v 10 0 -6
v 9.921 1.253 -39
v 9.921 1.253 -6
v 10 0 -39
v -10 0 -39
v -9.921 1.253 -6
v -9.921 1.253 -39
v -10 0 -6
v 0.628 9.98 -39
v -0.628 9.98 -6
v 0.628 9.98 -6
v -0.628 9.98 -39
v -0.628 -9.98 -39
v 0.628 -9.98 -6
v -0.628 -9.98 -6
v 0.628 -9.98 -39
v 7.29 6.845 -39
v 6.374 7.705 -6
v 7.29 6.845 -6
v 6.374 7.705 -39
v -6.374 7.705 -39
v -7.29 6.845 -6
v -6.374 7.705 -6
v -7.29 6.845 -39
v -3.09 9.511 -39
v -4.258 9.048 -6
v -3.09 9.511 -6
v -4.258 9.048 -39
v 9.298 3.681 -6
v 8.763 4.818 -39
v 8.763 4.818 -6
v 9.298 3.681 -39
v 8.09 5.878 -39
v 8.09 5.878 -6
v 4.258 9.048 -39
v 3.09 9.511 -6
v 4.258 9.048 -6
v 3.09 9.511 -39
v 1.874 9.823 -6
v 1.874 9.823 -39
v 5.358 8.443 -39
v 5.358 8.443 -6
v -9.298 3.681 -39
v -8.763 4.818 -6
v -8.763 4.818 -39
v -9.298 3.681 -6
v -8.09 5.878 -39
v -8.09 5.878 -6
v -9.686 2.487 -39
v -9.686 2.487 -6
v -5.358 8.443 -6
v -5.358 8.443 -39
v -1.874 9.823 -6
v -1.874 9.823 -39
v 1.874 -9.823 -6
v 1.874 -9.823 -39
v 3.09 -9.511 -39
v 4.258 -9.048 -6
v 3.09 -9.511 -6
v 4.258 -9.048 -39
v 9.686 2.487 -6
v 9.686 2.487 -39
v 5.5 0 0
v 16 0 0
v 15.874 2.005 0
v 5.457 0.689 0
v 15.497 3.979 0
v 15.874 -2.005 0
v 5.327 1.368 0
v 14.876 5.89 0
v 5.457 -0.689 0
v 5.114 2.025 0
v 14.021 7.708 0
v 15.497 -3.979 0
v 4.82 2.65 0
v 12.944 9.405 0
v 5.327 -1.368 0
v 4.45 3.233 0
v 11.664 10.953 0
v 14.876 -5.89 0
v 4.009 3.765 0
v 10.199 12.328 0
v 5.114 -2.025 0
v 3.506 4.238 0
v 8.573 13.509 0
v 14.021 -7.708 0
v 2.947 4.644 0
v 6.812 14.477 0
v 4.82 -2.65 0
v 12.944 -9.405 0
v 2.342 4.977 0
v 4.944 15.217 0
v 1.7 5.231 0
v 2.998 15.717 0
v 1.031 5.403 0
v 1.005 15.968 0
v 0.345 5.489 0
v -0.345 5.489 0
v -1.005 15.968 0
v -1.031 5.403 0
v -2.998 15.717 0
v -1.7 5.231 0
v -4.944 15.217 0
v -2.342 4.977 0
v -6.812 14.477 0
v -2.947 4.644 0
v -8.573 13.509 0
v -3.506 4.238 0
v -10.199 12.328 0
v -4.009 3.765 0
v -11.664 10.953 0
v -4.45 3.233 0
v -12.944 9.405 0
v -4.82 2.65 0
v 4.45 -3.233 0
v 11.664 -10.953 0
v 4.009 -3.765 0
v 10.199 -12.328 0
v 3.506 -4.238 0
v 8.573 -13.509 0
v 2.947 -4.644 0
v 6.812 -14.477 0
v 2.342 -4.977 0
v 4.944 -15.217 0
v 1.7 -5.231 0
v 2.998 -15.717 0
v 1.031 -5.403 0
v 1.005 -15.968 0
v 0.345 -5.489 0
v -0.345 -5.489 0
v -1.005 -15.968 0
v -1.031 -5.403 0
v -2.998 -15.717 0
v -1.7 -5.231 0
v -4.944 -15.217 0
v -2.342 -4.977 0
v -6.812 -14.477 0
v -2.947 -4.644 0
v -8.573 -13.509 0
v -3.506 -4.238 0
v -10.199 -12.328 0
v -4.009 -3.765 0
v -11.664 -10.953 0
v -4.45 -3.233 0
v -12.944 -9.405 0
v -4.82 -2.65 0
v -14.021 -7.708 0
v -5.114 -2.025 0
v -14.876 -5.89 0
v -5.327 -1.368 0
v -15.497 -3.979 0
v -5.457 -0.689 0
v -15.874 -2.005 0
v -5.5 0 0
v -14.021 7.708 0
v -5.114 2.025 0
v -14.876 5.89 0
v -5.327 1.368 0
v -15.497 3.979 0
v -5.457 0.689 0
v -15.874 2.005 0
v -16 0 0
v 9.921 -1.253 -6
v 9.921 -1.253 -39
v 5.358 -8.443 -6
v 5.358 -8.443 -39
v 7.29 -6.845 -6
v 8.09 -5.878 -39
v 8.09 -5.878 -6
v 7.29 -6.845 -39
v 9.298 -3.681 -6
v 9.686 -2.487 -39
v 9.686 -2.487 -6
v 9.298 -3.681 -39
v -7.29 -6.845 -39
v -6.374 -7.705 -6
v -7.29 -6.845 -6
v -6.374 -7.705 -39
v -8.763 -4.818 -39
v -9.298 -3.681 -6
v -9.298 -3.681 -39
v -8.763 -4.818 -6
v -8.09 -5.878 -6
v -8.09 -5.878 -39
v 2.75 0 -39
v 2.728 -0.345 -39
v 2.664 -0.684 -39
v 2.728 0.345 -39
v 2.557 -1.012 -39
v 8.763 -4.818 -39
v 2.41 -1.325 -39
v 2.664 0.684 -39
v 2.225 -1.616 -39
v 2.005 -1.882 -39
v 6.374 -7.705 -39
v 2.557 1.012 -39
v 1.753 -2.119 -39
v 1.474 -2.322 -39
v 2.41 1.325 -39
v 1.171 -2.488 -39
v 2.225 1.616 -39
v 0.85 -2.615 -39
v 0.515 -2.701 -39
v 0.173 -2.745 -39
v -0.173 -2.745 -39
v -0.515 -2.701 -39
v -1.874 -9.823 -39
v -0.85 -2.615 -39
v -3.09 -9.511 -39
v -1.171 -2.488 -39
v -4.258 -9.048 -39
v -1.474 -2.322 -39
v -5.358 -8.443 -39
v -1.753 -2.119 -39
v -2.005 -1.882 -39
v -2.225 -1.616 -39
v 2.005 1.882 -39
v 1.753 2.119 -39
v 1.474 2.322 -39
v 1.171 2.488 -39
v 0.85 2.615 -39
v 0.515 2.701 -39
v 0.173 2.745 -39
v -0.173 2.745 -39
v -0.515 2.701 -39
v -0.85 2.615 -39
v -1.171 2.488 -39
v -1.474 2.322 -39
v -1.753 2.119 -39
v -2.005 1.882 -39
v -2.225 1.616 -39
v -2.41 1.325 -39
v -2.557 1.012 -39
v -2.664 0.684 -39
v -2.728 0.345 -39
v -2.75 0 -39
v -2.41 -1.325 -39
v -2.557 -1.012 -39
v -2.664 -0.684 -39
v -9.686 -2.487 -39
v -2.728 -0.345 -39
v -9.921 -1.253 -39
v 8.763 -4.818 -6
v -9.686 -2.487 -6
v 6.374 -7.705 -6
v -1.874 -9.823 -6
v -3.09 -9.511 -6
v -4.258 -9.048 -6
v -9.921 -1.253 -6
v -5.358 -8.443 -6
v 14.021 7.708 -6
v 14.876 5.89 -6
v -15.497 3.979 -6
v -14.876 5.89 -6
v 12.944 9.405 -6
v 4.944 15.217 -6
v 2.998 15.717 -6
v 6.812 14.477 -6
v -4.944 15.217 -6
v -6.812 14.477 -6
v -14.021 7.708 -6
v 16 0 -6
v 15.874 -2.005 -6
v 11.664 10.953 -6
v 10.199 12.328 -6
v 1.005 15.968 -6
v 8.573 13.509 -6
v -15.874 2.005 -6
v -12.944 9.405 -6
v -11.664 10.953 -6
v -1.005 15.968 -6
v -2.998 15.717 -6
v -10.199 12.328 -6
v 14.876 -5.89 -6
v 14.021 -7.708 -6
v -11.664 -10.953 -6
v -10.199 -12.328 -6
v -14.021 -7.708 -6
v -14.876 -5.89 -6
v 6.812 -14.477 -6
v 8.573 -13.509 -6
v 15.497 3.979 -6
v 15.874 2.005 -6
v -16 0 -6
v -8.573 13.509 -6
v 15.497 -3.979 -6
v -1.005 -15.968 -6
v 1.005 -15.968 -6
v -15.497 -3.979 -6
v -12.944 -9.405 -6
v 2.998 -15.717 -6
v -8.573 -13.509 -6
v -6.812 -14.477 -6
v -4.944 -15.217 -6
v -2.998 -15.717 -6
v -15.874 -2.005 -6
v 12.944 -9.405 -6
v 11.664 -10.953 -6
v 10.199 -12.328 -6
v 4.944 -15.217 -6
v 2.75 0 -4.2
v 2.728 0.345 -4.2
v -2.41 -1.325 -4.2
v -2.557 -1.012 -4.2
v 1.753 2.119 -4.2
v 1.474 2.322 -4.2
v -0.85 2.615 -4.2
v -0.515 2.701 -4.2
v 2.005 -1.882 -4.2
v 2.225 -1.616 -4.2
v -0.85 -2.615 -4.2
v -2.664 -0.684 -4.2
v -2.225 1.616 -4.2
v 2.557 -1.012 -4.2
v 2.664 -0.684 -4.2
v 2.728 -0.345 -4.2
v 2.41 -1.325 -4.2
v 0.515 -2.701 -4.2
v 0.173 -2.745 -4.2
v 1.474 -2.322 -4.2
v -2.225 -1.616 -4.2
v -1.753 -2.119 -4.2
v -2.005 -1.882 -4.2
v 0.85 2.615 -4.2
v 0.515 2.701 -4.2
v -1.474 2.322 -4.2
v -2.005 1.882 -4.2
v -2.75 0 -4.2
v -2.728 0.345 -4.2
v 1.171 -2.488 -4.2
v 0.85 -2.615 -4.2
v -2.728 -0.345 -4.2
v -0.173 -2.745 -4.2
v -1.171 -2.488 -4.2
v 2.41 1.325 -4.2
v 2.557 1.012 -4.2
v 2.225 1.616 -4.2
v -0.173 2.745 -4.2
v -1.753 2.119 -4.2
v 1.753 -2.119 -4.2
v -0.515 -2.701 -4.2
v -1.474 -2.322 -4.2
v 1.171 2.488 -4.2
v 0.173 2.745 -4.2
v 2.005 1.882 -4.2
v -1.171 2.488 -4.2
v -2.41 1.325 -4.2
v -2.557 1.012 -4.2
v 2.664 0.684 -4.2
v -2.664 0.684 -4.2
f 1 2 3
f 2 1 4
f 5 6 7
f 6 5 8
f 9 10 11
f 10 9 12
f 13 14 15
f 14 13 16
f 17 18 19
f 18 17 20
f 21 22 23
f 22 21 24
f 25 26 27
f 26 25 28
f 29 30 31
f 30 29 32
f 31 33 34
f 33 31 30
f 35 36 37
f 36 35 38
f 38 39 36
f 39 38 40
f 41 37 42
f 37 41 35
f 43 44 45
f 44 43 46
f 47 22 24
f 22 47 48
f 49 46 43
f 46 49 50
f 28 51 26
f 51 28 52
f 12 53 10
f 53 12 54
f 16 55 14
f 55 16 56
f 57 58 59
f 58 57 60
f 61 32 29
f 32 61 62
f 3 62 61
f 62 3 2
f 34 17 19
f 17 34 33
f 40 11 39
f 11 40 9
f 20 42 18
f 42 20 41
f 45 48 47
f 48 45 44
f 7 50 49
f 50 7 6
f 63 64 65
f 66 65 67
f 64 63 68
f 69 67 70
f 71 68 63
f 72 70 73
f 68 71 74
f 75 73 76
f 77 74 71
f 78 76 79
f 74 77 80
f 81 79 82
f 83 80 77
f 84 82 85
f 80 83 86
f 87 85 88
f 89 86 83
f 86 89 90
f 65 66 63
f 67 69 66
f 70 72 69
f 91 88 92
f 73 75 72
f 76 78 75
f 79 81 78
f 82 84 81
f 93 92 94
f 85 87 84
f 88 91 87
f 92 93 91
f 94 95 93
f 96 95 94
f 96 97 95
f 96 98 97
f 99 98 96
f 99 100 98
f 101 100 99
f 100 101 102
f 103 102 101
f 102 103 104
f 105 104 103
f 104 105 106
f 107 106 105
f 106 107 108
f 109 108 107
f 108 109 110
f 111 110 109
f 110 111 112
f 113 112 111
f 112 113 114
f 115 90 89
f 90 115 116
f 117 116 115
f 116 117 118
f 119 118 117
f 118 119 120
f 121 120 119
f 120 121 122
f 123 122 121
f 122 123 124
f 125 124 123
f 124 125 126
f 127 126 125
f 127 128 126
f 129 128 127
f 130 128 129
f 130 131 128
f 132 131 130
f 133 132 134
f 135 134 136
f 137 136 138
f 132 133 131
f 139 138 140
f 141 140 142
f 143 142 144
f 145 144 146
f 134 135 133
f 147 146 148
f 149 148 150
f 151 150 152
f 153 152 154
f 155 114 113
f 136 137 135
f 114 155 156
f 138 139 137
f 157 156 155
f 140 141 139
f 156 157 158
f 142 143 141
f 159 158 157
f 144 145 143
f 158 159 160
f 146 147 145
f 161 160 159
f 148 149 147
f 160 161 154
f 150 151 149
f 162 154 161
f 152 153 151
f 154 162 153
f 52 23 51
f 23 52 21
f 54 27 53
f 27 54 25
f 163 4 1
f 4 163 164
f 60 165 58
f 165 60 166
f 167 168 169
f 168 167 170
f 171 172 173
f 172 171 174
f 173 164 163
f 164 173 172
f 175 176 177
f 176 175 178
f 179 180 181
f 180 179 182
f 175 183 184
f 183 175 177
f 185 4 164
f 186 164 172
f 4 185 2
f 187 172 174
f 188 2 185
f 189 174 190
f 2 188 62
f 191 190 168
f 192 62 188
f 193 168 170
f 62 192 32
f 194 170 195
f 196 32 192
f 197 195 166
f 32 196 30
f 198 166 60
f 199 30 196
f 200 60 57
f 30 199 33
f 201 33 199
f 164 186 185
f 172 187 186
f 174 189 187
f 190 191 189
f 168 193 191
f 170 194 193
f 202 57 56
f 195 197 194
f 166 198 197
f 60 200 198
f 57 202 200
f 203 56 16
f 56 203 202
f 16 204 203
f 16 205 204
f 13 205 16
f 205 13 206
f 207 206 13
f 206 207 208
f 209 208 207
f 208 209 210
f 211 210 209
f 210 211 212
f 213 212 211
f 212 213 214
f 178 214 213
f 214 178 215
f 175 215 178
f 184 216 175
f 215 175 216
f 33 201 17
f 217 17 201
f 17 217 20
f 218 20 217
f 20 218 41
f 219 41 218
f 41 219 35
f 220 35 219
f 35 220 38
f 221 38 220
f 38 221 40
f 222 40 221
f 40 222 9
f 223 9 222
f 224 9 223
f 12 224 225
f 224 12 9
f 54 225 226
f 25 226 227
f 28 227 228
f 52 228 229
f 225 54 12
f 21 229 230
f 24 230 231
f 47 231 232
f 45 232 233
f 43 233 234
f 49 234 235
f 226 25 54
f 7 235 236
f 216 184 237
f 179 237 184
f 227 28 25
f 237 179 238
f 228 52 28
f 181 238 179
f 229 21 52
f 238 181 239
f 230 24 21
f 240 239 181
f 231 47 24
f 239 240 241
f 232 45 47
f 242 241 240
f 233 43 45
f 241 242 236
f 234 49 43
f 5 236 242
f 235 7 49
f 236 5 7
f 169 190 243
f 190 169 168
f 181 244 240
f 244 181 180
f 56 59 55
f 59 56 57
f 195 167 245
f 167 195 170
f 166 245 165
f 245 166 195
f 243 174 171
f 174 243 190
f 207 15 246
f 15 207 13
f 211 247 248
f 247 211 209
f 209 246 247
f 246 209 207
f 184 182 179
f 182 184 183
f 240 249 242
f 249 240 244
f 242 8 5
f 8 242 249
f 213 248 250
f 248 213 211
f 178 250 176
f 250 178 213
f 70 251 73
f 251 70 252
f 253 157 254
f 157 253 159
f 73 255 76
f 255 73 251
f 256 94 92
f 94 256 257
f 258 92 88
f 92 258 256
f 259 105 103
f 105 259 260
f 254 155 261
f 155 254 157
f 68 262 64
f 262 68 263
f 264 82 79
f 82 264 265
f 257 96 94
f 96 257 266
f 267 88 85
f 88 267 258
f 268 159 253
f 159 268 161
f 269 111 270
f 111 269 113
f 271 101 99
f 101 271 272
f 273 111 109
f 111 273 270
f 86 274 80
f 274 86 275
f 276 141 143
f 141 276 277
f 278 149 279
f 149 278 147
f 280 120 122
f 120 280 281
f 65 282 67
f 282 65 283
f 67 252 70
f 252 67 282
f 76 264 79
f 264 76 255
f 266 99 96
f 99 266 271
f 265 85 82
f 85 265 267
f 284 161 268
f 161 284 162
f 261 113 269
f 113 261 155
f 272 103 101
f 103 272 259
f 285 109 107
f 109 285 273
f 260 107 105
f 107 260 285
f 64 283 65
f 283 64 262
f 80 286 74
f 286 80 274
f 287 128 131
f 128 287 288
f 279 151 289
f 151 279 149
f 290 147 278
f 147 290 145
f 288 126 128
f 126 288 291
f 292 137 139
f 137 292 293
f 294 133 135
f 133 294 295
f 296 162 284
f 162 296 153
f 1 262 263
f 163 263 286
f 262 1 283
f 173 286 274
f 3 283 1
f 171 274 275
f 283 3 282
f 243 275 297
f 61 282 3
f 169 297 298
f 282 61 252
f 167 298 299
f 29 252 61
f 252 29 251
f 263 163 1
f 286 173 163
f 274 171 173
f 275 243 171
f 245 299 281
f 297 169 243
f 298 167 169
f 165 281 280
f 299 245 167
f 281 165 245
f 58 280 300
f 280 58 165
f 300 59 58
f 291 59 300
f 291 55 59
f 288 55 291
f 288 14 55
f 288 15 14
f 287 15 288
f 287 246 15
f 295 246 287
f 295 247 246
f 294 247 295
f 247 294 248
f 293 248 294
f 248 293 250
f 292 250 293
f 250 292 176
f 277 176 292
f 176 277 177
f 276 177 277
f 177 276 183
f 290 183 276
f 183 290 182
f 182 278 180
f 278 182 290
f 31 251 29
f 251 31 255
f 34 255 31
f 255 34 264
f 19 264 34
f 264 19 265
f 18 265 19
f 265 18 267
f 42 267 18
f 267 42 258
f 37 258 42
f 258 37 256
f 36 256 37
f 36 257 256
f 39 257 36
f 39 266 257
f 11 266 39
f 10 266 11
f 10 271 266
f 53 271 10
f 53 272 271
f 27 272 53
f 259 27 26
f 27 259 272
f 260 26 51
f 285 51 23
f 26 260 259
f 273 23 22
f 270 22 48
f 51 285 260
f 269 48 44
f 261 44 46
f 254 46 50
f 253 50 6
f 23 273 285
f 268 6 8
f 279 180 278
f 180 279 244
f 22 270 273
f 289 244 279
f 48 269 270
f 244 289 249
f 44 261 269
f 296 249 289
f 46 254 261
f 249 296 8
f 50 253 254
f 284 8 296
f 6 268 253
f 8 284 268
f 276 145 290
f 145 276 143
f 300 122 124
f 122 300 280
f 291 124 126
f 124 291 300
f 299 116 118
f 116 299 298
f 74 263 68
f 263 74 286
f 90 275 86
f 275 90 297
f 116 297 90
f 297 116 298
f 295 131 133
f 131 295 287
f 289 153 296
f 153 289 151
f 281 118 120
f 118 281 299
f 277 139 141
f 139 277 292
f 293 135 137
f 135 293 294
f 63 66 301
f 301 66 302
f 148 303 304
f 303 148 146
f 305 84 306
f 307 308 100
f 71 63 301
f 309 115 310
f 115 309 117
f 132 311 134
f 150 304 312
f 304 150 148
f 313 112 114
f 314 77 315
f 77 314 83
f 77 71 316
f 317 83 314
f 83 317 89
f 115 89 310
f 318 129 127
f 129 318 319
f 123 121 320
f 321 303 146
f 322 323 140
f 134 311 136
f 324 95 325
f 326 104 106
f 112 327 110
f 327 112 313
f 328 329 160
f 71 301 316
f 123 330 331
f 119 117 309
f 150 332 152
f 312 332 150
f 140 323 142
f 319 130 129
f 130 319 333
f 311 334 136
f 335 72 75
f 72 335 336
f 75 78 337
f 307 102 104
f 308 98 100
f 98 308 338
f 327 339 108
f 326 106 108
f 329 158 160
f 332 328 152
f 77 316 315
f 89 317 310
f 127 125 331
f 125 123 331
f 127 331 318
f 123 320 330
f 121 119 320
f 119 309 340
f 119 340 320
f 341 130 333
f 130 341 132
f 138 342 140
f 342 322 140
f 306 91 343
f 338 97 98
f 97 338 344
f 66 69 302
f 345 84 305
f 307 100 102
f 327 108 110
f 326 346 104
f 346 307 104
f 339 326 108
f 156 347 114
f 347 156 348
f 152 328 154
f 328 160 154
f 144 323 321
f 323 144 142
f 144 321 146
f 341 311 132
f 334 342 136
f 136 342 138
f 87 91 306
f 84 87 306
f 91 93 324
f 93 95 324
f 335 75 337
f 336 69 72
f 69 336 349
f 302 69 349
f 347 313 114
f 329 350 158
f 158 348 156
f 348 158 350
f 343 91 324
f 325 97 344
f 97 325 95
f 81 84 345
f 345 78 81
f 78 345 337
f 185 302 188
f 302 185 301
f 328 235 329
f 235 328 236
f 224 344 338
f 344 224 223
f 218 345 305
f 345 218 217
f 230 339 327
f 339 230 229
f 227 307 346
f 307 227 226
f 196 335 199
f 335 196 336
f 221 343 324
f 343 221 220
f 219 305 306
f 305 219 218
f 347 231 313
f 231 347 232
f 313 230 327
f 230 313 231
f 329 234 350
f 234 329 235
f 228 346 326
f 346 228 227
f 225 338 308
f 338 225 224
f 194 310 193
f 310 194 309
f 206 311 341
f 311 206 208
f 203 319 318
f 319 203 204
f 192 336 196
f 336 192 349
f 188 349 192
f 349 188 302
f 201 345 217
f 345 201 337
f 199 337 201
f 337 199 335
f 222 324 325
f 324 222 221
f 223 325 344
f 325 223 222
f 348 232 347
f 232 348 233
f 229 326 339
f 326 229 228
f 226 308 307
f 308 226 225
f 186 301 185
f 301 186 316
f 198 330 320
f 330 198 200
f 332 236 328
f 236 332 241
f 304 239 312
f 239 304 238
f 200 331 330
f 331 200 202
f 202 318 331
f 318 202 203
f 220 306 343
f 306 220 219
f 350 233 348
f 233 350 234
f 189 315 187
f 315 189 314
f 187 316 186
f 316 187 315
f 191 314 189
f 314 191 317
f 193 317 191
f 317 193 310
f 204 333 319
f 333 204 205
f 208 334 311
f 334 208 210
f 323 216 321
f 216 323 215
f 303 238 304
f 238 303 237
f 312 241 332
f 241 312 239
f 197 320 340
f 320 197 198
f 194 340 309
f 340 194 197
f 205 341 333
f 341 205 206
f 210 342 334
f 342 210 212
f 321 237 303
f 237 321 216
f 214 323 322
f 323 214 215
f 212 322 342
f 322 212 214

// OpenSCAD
$fn = 50;


difference() {
	union() {
		translate(v = [0, 0, -39.0000000000]) {
			cylinder(h = 39, r = 10.0000000000);
		}
		translate(v = [0, 0, -6.0000000000]) {
			cylinder(h = 6, r = 16.0000000000);
		}
	}
	union() {
		translate(v = [0, 0, 0]) {
			rotate(a = [0, 0, 0]) {
				difference() {
					union() {
						#translate(v = [0, 0, -39.0000000000]) {
							cylinder(h = 39, r = 2.2500000000);
						}
						#translate(v = [0, 0, -4.2000000000]) {
							cylinder(h = 4.2000000000, r1 = 2.7500000000, r2 = 5.5000000000);
						}
						#translate(v = [0, 0, -39.0000000000]) {
							cylinder(h = 39, r = 2.7500000000);
						}
						#translate(v = [0, 0, -39.0000000000]) {
							cylinder(h = 39, r = 2.2500000000);
						}
					}
					union();
				}
			}
		}
	}
}
